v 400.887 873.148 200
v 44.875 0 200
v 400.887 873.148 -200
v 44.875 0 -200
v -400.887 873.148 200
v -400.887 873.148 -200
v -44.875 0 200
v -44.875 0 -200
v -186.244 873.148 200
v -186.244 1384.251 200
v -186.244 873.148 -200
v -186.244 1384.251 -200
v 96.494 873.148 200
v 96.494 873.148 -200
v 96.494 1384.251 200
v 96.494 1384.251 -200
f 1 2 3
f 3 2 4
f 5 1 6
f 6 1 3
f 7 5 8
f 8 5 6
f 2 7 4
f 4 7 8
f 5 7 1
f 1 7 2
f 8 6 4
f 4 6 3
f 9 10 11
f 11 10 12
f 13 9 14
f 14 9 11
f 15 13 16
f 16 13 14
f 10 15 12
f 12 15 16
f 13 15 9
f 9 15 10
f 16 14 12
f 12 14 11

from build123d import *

# Parameters (mm, degrees)
BOSS_EXTRUDE1_DEPTH = 200
SKETCH2_W           = 282.737523313
SKETCH2_H           = 511.10244599
BOSS_EXTRUDE2_DEPTH = 200


with BuildPart() as part:
    # Sketch1 → Boss-Extrude1 (new, symmetric)
    with BuildSketch(Plane.XY):
        Polygon((-44.874846432, 0), (44.874846432, 0), (400.886986463, 873.148089651), (-400.886986463, 873.148089651), align=None)
    extrude(amount=BOSS_EXTRUDE1_DEPTH, both=True)


with BuildPart() as body_2:
    # Sketch2 → Boss-Extrude2 (new, symmetric)
    with BuildSketch(Plane.XY):
        with Locations((-44.874846433, 1128.699312646)):
            Rectangle(SKETCH2_W, SKETCH2_H)
    extrude(amount=BOSS_EXTRUDE2_DEPTH, both=True)


solid = Compound([part.part, body_2.part])
